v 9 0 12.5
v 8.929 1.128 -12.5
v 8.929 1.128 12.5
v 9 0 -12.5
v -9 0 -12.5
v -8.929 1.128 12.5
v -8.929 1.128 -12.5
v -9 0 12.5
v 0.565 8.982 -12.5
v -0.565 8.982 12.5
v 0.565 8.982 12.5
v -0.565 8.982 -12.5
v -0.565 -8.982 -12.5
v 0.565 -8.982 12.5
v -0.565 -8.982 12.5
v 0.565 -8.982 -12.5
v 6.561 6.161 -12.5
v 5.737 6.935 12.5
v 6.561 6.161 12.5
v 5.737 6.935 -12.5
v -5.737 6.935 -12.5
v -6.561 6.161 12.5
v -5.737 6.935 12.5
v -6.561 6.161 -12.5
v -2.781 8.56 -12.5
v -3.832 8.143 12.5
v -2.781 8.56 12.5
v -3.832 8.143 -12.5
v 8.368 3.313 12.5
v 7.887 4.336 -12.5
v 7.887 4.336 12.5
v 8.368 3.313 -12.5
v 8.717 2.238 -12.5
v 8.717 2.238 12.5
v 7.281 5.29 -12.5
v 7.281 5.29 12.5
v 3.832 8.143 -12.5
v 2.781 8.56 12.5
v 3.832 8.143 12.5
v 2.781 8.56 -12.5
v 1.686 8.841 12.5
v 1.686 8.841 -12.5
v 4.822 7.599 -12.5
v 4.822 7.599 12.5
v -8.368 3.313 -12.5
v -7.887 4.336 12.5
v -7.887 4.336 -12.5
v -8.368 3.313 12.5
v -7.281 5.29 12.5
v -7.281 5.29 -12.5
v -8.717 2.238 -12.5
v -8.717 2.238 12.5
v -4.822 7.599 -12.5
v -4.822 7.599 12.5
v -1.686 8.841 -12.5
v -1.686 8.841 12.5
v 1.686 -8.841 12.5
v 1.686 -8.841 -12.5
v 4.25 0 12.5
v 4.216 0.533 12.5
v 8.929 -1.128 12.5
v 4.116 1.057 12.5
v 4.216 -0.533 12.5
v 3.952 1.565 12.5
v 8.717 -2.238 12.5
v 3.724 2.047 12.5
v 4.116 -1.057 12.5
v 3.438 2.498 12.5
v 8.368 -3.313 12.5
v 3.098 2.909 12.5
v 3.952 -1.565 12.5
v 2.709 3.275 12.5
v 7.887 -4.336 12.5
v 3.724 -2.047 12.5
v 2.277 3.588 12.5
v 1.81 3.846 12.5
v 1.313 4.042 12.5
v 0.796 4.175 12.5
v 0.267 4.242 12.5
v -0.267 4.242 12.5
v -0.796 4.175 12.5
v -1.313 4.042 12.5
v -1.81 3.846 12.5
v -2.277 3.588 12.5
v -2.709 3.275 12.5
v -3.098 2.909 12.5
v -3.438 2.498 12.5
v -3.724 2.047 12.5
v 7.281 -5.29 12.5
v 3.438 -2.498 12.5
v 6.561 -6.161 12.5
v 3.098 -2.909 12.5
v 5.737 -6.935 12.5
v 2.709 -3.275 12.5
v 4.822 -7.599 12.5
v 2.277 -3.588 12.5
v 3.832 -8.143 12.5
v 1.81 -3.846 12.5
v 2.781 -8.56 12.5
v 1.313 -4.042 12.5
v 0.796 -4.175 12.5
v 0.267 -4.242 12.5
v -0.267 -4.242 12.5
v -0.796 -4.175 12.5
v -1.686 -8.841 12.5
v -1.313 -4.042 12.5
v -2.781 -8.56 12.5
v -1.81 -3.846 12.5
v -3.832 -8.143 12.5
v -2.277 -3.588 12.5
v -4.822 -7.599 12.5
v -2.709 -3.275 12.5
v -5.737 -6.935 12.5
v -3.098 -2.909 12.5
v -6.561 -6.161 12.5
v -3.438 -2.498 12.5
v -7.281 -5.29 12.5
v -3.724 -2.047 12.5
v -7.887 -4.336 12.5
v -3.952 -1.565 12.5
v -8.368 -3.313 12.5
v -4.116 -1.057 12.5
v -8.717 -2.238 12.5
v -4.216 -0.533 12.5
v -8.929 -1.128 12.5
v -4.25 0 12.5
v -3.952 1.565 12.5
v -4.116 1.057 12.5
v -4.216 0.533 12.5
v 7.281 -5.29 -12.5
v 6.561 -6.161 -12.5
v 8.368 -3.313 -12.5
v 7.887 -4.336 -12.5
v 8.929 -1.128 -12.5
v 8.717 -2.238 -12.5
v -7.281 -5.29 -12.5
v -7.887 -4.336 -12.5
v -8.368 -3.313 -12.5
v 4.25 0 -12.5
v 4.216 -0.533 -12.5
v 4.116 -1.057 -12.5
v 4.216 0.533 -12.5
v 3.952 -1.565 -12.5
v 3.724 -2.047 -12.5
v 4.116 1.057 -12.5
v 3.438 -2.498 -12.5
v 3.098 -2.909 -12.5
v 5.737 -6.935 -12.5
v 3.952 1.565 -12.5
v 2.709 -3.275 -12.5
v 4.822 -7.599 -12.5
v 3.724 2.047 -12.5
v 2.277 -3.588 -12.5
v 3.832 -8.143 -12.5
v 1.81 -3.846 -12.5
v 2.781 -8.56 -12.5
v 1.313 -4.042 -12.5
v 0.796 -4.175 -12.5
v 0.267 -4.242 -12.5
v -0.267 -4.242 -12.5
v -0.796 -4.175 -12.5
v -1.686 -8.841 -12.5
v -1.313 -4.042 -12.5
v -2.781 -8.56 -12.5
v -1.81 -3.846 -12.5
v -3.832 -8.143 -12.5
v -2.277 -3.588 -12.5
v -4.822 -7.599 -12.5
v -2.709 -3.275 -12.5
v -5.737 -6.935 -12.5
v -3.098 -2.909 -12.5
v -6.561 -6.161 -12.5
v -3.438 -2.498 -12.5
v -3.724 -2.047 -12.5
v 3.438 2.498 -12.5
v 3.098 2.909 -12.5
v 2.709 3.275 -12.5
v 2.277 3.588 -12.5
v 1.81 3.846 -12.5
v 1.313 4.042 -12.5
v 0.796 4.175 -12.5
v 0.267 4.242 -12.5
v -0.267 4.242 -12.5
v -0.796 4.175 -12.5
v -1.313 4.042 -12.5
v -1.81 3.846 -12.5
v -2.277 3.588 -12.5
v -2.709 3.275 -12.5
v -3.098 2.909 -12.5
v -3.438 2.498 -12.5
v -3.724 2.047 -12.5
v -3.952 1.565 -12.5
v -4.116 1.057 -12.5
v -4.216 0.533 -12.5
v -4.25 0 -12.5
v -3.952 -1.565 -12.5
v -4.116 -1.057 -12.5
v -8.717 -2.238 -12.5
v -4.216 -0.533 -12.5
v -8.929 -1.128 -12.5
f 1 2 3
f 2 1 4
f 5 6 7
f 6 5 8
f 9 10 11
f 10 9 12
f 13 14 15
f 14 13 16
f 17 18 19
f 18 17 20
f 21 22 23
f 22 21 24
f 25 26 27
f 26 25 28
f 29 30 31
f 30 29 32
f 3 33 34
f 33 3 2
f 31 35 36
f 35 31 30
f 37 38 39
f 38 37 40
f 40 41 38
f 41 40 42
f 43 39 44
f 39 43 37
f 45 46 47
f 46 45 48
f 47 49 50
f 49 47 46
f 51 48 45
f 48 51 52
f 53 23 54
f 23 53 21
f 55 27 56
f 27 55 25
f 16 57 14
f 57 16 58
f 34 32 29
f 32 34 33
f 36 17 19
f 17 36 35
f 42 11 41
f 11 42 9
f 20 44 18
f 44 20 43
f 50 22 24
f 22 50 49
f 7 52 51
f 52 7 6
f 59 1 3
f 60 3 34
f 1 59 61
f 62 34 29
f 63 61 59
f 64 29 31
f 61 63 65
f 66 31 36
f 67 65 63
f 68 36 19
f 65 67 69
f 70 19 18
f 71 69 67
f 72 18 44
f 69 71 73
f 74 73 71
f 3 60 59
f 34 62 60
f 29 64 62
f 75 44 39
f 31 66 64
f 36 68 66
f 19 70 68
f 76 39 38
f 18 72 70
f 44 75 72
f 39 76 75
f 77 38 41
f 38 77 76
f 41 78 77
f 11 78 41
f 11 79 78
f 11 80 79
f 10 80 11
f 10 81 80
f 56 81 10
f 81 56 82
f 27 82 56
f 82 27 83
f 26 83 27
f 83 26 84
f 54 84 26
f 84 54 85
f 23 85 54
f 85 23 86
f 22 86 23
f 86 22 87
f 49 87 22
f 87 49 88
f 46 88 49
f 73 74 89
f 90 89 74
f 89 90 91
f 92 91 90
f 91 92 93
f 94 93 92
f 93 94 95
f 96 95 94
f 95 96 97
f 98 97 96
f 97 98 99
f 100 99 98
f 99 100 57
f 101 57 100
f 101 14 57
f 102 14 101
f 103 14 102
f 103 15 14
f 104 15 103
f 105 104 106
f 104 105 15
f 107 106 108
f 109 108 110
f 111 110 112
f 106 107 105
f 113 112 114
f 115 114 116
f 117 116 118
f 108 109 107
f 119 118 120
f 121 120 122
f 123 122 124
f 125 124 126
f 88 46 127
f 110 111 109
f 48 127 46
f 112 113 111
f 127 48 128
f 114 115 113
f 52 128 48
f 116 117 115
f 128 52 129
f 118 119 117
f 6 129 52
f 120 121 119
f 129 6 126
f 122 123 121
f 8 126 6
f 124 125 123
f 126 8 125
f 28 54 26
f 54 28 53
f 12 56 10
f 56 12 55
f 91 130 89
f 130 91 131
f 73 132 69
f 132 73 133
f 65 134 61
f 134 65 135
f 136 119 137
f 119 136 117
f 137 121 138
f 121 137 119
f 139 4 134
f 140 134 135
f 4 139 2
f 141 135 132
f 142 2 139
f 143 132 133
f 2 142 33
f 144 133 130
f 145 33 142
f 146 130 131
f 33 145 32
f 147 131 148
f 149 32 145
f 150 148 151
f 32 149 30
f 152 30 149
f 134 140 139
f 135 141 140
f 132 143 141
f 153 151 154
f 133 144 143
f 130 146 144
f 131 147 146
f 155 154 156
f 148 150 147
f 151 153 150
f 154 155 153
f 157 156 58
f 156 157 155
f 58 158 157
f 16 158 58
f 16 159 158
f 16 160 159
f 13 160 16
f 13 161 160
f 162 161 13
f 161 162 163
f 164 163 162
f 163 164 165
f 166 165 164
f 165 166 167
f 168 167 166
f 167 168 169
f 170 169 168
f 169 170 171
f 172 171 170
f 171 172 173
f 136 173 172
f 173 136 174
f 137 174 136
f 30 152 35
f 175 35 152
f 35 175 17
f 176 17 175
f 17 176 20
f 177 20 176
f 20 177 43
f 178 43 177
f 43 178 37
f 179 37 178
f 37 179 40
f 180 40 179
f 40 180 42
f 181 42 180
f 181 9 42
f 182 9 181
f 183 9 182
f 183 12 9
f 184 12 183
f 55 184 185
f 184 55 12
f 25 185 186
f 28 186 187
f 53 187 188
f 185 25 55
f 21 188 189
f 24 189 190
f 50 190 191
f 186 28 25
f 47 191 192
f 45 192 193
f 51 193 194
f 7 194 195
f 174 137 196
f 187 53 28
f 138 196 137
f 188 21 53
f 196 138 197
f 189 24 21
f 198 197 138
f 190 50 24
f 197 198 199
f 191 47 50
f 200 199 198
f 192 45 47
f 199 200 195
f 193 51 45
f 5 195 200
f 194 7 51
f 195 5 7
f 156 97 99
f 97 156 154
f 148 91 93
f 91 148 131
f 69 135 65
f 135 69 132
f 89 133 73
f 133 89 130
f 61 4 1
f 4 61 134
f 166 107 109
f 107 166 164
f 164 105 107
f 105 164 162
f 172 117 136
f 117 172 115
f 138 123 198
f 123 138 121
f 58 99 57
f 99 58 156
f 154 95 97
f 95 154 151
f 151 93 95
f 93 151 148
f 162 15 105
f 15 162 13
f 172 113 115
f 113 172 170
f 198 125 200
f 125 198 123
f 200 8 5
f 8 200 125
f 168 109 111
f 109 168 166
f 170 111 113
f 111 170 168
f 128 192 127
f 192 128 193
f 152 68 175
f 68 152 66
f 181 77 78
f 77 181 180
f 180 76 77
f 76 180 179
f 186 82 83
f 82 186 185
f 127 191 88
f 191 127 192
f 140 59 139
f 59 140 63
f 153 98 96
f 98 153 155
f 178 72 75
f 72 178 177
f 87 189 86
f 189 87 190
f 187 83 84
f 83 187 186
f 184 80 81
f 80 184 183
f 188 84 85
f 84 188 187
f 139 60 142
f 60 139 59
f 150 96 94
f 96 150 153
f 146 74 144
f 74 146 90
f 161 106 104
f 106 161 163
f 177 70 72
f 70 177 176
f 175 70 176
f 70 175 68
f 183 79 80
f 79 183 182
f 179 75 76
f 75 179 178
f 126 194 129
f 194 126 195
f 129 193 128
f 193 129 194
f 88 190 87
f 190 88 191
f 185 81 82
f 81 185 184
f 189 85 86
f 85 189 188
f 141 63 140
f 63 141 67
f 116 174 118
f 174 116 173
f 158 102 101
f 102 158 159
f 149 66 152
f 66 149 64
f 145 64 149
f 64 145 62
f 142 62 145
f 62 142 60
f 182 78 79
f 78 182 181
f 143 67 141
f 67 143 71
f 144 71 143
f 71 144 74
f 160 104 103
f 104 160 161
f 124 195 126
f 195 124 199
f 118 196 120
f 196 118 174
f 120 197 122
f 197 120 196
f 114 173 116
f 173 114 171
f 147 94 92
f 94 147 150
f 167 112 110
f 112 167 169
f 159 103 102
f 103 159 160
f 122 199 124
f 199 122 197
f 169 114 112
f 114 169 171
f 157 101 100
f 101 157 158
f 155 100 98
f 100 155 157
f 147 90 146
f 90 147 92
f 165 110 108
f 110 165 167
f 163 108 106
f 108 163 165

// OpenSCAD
$fn = 50;


difference() {
	union() {
		translate(v = [0, 0, -12.5000000000]) {
			cylinder(h = 25, r = 9.0000000000);
		}
	}
	union() {
		translate(v = [0, 0, -100.0000000000]) {
			cylinder(h = 200, r = 4.2500000000);
		}
	}
}
